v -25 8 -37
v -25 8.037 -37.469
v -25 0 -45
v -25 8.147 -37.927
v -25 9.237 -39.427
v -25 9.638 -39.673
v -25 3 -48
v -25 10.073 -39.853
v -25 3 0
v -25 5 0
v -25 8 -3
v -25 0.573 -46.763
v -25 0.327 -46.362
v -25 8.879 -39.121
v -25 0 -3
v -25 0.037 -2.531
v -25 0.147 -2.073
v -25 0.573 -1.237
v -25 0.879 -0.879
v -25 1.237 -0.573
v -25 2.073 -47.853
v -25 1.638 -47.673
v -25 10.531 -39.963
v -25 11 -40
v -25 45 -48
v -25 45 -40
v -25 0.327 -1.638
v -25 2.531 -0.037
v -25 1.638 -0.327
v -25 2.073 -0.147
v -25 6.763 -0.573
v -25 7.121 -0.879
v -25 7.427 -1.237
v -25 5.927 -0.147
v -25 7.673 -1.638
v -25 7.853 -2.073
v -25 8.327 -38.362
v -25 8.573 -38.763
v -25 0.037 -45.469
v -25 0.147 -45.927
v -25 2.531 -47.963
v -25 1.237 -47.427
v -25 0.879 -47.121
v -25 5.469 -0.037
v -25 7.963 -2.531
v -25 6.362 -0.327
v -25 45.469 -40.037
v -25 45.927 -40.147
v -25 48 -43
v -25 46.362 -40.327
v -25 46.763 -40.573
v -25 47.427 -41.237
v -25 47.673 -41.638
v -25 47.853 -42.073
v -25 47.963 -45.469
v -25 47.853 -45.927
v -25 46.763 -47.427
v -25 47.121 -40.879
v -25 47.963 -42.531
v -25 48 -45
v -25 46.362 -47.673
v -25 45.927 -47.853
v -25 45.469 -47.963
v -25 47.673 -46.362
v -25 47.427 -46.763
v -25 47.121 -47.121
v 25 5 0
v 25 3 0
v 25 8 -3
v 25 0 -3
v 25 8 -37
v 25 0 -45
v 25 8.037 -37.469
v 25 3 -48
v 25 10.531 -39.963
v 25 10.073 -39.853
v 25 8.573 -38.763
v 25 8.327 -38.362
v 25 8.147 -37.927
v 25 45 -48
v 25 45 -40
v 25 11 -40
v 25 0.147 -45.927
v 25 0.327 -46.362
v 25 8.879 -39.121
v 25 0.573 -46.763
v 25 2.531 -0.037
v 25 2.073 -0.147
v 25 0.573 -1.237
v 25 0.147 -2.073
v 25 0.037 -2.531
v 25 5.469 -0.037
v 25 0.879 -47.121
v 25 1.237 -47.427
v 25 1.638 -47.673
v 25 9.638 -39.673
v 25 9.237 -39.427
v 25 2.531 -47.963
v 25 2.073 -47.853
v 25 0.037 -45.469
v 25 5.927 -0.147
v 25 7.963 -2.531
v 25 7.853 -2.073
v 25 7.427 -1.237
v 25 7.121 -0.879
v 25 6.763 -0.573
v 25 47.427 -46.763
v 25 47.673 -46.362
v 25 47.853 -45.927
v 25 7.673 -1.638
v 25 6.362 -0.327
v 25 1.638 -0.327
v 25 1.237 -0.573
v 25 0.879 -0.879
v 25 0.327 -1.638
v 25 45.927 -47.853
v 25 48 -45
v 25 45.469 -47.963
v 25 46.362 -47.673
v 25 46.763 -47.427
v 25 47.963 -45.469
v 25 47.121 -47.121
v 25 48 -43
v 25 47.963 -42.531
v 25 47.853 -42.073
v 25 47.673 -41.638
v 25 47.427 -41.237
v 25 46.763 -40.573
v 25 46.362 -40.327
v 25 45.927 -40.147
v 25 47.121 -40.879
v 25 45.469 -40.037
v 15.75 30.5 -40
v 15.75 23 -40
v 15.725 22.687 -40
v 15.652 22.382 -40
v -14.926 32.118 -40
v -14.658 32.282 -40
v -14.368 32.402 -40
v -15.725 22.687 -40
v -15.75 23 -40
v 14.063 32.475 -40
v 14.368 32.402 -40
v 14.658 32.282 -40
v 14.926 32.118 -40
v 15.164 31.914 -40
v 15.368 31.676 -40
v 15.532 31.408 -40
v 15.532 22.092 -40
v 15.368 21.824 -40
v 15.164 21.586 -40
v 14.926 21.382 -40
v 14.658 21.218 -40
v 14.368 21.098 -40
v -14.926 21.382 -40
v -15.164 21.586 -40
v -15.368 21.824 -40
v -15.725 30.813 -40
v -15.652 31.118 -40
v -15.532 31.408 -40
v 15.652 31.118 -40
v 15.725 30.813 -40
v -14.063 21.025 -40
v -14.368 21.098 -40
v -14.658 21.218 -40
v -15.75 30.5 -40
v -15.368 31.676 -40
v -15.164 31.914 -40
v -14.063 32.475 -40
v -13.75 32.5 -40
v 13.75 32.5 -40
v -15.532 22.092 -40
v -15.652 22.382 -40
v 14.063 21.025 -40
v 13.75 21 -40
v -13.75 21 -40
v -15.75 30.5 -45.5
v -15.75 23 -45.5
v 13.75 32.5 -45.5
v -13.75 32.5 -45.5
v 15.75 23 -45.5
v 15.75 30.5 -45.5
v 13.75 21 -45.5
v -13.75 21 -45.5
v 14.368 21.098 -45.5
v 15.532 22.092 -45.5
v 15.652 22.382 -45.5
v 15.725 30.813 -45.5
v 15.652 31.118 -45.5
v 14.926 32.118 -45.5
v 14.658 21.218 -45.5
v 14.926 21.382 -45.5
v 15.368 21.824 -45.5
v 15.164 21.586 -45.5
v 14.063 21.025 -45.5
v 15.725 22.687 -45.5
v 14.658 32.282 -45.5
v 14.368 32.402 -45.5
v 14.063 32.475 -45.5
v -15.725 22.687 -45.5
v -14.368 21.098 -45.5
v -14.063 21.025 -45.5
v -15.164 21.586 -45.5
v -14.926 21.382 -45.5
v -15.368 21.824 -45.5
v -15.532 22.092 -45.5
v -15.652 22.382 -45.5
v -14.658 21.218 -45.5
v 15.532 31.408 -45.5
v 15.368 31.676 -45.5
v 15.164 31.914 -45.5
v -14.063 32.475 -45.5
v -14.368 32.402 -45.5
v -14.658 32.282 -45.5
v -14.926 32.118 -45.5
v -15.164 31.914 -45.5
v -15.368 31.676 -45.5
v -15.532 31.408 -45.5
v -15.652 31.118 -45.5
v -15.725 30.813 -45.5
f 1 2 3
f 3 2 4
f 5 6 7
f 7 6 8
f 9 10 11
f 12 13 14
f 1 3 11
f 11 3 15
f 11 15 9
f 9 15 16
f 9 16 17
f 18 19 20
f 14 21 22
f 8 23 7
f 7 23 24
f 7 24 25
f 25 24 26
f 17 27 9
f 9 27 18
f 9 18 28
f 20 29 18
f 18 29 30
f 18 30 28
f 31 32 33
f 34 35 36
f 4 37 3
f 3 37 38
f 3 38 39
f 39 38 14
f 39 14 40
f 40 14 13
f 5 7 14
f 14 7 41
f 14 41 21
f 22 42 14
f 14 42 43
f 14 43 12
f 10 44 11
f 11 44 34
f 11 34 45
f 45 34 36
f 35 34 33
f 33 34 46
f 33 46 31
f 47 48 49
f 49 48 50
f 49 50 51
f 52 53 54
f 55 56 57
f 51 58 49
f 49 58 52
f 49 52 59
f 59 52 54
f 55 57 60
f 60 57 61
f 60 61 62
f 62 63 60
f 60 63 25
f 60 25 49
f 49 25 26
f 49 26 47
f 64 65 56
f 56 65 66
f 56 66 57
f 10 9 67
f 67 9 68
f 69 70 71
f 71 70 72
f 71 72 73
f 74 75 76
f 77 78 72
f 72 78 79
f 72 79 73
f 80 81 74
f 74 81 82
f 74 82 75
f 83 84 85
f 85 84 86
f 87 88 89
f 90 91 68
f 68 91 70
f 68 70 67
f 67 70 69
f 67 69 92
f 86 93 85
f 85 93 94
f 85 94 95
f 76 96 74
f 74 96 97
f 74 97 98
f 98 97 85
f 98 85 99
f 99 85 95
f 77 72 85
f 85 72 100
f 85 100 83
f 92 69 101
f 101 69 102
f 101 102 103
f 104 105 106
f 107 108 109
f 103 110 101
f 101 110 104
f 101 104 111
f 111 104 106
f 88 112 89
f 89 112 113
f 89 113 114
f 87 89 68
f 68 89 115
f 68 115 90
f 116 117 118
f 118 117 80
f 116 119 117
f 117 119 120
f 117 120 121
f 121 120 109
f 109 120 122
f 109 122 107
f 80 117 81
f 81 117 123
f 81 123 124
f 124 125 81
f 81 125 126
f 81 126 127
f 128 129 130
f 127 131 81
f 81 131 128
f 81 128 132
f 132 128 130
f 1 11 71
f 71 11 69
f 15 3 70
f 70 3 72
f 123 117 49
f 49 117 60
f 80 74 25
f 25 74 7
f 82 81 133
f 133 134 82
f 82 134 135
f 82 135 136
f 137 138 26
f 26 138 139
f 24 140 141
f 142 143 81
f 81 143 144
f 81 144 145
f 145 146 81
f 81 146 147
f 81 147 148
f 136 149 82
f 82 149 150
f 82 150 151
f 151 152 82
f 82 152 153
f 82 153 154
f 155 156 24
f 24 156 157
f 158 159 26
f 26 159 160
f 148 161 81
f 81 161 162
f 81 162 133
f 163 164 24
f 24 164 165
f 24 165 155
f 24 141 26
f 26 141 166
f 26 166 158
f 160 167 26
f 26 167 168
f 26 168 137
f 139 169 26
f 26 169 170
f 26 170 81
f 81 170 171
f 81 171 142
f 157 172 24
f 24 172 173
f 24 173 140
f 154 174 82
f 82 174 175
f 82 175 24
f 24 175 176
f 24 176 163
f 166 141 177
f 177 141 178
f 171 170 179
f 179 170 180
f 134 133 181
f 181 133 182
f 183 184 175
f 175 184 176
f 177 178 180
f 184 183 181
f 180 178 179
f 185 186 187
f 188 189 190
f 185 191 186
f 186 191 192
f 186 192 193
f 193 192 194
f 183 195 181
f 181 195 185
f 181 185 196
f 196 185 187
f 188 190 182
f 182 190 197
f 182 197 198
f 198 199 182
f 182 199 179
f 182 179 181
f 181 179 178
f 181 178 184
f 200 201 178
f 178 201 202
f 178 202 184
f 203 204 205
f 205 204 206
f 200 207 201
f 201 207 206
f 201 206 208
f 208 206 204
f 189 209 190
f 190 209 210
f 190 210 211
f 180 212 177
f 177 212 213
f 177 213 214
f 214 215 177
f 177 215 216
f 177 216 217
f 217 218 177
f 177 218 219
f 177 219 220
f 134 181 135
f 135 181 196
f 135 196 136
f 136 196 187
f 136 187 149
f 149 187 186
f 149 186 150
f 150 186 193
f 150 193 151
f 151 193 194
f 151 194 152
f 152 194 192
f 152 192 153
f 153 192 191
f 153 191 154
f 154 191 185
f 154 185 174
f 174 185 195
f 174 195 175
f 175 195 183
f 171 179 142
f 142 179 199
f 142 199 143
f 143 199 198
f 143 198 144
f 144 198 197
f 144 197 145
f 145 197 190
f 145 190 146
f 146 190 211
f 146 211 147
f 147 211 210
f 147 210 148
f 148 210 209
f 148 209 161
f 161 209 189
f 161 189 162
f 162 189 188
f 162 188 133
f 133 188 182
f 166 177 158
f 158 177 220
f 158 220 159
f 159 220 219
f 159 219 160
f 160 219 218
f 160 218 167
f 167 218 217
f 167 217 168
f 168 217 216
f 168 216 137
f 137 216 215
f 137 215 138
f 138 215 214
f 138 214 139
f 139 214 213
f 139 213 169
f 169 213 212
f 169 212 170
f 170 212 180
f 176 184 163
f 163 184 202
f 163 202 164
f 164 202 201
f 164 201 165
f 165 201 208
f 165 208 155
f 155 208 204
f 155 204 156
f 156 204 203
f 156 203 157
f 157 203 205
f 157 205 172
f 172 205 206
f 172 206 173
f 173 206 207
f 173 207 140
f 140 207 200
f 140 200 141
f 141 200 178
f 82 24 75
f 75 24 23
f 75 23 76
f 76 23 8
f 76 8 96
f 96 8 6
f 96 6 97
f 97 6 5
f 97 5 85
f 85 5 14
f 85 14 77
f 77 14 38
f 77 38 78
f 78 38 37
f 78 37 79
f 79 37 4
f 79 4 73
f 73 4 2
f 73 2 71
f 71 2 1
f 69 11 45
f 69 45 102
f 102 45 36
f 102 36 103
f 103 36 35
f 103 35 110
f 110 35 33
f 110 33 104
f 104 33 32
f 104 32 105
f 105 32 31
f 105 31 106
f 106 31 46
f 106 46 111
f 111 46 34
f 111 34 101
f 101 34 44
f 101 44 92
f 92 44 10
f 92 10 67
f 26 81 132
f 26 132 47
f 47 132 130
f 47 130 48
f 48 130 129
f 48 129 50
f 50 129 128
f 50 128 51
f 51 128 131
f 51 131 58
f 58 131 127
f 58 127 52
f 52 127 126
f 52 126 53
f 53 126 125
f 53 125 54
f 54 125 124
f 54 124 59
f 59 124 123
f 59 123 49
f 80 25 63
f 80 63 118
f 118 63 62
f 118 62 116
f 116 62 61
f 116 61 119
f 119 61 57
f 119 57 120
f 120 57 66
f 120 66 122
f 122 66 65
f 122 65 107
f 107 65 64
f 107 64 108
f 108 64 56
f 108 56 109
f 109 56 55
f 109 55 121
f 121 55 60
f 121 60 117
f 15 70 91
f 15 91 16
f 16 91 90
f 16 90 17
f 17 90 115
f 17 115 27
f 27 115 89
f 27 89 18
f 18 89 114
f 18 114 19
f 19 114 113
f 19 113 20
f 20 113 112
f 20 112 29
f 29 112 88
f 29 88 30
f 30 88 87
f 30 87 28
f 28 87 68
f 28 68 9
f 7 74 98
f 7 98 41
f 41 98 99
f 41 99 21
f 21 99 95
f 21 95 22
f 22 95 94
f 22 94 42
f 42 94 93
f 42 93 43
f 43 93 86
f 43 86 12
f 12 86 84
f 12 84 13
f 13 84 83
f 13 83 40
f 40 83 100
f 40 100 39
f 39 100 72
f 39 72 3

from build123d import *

# Parameters (mm, degrees)
SKETCH1_W           = 50
SKETCH1_H           = 40
BOSS_EXTRUDE1_DEPTH = 8
SKETCH2_W           = 50
SKETCH2_H           = 48
BOSS_EXTRUDE2_DEPTH = 8
SKETCH3_W           = 31.5
SKETCH3_H           = 11.5
CUT_EXTRUDE1_DEPTH  = 5.5
FILLET1_R           = 2
FILLET2_R           = 3


with BuildPart() as part:
    # Sketch1 → Boss-Extrude1 (new body)
    with BuildSketch(Plane(origin=(0, 0, 0), x_dir=(1, 0, 0), z_dir=(0, 1, 0))):
        with Locations((0, 20)):
            Rectangle(SKETCH1_W, SKETCH1_H)
    extrude(amount=BOSS_EXTRUDE1_DEPTH)

    # Sketch2 → Boss-Extrude2 (add)
    with BuildSketch(Plane(origin=(0, 0, -40), x_dir=(-1, 0, 0), z_dir=(0, 0, -1))):
        with Locations((0, 24)):
            Rectangle(SKETCH2_W, SKETCH2_H)
    extrude(amount=BOSS_EXTRUDE2_DEPTH)

    # Sketch3 → Cut-Extrude1 (cut)
    with BuildSketch(Plane.XY.offset(-40)):
        with Locations((0, 26.75)):
            Rectangle(SKETCH3_W, SKETCH3_H)
    extrude(amount=-CUT_EXTRUDE1_DEPTH, mode=Mode.SUBTRACT)

    # Fillet1
    fillet1_edges = [part.edges().sort_by_distance(p)[0] for p in [
        (-15.75, 21, -42.75),
        (-15.75, 32.5, -42.75),
        (15.75, 32.5, -42.75),
        (15.75, 21, -42.75),
    ]]
    fillet(fillet1_edges, radius=FILLET1_R)

    # Fillet2
    fillet2_edges = [part.edges().sort_by_distance(p)[0] for p in [
        (0, 48, -40),
        (0, 0, -48),
        (0, 8, -40),
        (0, 48, -48),
        (0, 0, 0),
        (0, 8, 0),
    ]]
    fillet(fillet2_edges, radius=FILLET2_R)


solid = part.part
